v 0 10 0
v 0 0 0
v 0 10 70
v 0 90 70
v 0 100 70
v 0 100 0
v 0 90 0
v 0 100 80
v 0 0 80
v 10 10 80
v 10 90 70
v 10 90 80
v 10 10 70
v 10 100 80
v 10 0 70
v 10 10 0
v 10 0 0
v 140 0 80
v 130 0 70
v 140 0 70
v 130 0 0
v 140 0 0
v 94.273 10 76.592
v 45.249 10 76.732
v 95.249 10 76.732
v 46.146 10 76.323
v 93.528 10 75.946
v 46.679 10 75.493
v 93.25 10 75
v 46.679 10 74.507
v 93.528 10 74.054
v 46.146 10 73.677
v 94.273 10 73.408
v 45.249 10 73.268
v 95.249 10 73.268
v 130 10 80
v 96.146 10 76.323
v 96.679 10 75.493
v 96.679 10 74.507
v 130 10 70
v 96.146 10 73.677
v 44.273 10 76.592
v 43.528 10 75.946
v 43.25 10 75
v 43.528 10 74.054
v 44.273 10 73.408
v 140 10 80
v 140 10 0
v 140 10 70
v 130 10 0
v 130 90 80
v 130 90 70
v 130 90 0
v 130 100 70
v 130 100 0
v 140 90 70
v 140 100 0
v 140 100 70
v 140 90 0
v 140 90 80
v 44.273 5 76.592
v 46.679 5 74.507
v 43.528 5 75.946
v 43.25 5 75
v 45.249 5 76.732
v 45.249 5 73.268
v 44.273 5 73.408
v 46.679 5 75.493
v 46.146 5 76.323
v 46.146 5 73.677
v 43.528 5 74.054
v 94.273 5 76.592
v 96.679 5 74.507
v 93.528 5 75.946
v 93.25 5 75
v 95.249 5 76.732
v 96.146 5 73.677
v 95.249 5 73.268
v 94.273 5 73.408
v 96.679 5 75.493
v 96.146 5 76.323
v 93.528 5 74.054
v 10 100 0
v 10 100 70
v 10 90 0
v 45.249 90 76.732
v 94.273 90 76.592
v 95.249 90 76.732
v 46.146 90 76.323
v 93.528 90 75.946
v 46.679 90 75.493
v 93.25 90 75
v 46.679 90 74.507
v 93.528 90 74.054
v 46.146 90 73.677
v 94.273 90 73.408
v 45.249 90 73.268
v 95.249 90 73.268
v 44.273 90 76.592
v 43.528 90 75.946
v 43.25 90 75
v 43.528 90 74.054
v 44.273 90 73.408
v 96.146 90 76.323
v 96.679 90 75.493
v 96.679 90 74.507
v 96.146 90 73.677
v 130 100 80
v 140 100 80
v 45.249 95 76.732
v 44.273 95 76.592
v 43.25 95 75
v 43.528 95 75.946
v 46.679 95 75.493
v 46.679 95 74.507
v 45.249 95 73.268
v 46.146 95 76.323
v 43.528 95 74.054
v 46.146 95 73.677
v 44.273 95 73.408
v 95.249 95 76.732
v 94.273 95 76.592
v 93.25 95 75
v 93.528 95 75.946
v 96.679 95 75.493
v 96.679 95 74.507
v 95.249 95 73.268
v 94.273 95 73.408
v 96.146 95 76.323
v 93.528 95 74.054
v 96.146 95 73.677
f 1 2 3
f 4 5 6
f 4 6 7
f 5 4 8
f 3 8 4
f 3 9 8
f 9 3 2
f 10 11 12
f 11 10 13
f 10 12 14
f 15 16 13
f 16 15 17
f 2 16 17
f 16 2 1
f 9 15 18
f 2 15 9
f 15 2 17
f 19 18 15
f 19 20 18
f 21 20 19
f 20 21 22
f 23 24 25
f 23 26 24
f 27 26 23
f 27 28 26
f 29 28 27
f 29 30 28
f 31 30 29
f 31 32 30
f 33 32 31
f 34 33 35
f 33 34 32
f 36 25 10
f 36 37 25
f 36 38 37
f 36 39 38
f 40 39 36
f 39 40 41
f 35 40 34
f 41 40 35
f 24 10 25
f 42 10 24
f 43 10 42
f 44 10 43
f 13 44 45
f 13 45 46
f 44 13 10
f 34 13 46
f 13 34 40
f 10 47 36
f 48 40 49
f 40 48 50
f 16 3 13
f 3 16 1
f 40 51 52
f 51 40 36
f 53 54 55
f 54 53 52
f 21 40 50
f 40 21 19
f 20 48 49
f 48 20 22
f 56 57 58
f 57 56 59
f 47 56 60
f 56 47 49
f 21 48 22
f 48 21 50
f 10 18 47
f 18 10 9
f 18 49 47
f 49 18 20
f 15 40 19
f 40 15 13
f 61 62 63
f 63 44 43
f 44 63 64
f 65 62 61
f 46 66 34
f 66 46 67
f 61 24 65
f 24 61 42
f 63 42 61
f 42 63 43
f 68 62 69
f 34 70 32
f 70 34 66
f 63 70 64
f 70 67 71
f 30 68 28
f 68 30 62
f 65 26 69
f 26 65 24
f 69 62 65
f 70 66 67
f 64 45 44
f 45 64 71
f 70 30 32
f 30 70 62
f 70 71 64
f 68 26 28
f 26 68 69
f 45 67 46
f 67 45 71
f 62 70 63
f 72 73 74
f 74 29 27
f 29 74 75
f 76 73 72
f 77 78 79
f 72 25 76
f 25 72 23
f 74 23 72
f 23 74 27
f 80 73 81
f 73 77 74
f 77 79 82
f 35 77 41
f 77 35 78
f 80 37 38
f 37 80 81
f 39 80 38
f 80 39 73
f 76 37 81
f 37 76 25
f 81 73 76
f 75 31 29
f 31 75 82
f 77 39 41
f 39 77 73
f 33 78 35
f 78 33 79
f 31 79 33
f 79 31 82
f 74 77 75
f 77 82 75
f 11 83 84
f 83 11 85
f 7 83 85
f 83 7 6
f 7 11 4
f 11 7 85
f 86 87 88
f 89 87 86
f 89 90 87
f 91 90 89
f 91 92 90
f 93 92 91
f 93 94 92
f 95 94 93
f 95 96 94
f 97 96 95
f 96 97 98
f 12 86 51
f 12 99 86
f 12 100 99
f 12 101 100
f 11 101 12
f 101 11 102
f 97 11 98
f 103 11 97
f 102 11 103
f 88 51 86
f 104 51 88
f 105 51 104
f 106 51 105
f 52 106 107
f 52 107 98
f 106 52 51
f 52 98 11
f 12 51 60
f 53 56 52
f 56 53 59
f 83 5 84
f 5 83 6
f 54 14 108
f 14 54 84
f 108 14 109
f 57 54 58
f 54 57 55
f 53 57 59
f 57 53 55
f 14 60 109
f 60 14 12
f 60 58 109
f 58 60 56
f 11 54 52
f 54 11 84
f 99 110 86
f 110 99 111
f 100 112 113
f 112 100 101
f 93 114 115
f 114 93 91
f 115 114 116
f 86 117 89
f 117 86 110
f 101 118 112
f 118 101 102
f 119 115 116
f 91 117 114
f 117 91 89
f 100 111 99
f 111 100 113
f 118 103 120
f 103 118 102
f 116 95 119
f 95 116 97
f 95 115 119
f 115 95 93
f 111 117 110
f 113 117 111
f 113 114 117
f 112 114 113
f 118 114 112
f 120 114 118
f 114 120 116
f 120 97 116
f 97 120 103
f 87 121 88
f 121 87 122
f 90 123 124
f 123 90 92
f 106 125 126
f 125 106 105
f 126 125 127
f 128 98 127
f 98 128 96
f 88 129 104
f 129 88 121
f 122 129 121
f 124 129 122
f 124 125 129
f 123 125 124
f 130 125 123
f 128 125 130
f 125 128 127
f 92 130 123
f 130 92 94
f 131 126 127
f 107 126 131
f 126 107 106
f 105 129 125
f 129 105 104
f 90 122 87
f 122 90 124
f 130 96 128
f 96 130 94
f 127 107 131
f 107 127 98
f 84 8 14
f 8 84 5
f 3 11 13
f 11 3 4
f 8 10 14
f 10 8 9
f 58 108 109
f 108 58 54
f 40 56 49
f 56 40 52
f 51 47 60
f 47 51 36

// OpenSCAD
$fs=1;
boxLength = 10;
boxWidth = 10;
boxHeight = 140;

stiltTowerHeight = 80;
shaftHeight = 90;

casing();

module casing() {
    union() {
        UTowersWithHoles(25,boxWidth-5);

        translate([0,shaftHeight,0]) {
            UTowersWithHoles(25,boxWidth-11);
        }
        
        translate([0,0,stiltTowerHeight]) {
            rotate([-90,0,0]) {
                #towers(0,0); //For support
            }
        }
    }
}

module towers(lOffset=0,wOffset=0) {
    cube([boxLength+lOffset,boxWidth+wOffset,shaftHeight+10]);
    translate([(boxHeight-boxWidth)-lOffset,0,0]) {
        cube([boxLength+lOffset,boxWidth+wOffset,shaftHeight+10]);
    }
}

module standsForHeight(lOffset=0,wOffset=0) {
    cube([boxLength+lOffset,boxWidth+wOffset,stiltTowerHeight]);
    translate([(boxHeight-boxWidth)-lOffset,0,0]) {
        cube([boxLength+lOffset,boxWidth+wOffset,stiltTowerHeight]);
    }
}

module UTowers() {
    
    LengthOffset = boxLength+5;
    widthOffset = boxWidth+5;
    
    towers(0,0);
    translate([0,0,boxHeight]) {
        rotate([0,90,0]) {
            cube([boxLength,boxWidth,boxHeight]);
        }
    }
}

module UTowersWithHoles(x_hole_offset,y_hole_offset) {
    
    LengthOffset = boxLength;
    widthOffset = boxWidth;
    
    //towers(0,0);
    standsForHeight(lOffset=0,wOffset=0);
    translate([0,0,stiltTowerHeight]) {
        rotate([0,90,0]) {
            difference() {
                cube([boxLength,boxWidth,boxHeight]);
                
                translate([5,y_hole_offset,boxHeight/2-25]) { //(z,y,x)
                    rotate([0,90,90]) {
                        cylinder(d=3.5,h=6);
                    }
                }
                
                translate([5,y_hole_offset,boxHeight/2+25]) {
                    rotate([0,90,90]) {
                        cylinder(d=3.5,h=6);
                    }
                }
            }
        }
    }
}
